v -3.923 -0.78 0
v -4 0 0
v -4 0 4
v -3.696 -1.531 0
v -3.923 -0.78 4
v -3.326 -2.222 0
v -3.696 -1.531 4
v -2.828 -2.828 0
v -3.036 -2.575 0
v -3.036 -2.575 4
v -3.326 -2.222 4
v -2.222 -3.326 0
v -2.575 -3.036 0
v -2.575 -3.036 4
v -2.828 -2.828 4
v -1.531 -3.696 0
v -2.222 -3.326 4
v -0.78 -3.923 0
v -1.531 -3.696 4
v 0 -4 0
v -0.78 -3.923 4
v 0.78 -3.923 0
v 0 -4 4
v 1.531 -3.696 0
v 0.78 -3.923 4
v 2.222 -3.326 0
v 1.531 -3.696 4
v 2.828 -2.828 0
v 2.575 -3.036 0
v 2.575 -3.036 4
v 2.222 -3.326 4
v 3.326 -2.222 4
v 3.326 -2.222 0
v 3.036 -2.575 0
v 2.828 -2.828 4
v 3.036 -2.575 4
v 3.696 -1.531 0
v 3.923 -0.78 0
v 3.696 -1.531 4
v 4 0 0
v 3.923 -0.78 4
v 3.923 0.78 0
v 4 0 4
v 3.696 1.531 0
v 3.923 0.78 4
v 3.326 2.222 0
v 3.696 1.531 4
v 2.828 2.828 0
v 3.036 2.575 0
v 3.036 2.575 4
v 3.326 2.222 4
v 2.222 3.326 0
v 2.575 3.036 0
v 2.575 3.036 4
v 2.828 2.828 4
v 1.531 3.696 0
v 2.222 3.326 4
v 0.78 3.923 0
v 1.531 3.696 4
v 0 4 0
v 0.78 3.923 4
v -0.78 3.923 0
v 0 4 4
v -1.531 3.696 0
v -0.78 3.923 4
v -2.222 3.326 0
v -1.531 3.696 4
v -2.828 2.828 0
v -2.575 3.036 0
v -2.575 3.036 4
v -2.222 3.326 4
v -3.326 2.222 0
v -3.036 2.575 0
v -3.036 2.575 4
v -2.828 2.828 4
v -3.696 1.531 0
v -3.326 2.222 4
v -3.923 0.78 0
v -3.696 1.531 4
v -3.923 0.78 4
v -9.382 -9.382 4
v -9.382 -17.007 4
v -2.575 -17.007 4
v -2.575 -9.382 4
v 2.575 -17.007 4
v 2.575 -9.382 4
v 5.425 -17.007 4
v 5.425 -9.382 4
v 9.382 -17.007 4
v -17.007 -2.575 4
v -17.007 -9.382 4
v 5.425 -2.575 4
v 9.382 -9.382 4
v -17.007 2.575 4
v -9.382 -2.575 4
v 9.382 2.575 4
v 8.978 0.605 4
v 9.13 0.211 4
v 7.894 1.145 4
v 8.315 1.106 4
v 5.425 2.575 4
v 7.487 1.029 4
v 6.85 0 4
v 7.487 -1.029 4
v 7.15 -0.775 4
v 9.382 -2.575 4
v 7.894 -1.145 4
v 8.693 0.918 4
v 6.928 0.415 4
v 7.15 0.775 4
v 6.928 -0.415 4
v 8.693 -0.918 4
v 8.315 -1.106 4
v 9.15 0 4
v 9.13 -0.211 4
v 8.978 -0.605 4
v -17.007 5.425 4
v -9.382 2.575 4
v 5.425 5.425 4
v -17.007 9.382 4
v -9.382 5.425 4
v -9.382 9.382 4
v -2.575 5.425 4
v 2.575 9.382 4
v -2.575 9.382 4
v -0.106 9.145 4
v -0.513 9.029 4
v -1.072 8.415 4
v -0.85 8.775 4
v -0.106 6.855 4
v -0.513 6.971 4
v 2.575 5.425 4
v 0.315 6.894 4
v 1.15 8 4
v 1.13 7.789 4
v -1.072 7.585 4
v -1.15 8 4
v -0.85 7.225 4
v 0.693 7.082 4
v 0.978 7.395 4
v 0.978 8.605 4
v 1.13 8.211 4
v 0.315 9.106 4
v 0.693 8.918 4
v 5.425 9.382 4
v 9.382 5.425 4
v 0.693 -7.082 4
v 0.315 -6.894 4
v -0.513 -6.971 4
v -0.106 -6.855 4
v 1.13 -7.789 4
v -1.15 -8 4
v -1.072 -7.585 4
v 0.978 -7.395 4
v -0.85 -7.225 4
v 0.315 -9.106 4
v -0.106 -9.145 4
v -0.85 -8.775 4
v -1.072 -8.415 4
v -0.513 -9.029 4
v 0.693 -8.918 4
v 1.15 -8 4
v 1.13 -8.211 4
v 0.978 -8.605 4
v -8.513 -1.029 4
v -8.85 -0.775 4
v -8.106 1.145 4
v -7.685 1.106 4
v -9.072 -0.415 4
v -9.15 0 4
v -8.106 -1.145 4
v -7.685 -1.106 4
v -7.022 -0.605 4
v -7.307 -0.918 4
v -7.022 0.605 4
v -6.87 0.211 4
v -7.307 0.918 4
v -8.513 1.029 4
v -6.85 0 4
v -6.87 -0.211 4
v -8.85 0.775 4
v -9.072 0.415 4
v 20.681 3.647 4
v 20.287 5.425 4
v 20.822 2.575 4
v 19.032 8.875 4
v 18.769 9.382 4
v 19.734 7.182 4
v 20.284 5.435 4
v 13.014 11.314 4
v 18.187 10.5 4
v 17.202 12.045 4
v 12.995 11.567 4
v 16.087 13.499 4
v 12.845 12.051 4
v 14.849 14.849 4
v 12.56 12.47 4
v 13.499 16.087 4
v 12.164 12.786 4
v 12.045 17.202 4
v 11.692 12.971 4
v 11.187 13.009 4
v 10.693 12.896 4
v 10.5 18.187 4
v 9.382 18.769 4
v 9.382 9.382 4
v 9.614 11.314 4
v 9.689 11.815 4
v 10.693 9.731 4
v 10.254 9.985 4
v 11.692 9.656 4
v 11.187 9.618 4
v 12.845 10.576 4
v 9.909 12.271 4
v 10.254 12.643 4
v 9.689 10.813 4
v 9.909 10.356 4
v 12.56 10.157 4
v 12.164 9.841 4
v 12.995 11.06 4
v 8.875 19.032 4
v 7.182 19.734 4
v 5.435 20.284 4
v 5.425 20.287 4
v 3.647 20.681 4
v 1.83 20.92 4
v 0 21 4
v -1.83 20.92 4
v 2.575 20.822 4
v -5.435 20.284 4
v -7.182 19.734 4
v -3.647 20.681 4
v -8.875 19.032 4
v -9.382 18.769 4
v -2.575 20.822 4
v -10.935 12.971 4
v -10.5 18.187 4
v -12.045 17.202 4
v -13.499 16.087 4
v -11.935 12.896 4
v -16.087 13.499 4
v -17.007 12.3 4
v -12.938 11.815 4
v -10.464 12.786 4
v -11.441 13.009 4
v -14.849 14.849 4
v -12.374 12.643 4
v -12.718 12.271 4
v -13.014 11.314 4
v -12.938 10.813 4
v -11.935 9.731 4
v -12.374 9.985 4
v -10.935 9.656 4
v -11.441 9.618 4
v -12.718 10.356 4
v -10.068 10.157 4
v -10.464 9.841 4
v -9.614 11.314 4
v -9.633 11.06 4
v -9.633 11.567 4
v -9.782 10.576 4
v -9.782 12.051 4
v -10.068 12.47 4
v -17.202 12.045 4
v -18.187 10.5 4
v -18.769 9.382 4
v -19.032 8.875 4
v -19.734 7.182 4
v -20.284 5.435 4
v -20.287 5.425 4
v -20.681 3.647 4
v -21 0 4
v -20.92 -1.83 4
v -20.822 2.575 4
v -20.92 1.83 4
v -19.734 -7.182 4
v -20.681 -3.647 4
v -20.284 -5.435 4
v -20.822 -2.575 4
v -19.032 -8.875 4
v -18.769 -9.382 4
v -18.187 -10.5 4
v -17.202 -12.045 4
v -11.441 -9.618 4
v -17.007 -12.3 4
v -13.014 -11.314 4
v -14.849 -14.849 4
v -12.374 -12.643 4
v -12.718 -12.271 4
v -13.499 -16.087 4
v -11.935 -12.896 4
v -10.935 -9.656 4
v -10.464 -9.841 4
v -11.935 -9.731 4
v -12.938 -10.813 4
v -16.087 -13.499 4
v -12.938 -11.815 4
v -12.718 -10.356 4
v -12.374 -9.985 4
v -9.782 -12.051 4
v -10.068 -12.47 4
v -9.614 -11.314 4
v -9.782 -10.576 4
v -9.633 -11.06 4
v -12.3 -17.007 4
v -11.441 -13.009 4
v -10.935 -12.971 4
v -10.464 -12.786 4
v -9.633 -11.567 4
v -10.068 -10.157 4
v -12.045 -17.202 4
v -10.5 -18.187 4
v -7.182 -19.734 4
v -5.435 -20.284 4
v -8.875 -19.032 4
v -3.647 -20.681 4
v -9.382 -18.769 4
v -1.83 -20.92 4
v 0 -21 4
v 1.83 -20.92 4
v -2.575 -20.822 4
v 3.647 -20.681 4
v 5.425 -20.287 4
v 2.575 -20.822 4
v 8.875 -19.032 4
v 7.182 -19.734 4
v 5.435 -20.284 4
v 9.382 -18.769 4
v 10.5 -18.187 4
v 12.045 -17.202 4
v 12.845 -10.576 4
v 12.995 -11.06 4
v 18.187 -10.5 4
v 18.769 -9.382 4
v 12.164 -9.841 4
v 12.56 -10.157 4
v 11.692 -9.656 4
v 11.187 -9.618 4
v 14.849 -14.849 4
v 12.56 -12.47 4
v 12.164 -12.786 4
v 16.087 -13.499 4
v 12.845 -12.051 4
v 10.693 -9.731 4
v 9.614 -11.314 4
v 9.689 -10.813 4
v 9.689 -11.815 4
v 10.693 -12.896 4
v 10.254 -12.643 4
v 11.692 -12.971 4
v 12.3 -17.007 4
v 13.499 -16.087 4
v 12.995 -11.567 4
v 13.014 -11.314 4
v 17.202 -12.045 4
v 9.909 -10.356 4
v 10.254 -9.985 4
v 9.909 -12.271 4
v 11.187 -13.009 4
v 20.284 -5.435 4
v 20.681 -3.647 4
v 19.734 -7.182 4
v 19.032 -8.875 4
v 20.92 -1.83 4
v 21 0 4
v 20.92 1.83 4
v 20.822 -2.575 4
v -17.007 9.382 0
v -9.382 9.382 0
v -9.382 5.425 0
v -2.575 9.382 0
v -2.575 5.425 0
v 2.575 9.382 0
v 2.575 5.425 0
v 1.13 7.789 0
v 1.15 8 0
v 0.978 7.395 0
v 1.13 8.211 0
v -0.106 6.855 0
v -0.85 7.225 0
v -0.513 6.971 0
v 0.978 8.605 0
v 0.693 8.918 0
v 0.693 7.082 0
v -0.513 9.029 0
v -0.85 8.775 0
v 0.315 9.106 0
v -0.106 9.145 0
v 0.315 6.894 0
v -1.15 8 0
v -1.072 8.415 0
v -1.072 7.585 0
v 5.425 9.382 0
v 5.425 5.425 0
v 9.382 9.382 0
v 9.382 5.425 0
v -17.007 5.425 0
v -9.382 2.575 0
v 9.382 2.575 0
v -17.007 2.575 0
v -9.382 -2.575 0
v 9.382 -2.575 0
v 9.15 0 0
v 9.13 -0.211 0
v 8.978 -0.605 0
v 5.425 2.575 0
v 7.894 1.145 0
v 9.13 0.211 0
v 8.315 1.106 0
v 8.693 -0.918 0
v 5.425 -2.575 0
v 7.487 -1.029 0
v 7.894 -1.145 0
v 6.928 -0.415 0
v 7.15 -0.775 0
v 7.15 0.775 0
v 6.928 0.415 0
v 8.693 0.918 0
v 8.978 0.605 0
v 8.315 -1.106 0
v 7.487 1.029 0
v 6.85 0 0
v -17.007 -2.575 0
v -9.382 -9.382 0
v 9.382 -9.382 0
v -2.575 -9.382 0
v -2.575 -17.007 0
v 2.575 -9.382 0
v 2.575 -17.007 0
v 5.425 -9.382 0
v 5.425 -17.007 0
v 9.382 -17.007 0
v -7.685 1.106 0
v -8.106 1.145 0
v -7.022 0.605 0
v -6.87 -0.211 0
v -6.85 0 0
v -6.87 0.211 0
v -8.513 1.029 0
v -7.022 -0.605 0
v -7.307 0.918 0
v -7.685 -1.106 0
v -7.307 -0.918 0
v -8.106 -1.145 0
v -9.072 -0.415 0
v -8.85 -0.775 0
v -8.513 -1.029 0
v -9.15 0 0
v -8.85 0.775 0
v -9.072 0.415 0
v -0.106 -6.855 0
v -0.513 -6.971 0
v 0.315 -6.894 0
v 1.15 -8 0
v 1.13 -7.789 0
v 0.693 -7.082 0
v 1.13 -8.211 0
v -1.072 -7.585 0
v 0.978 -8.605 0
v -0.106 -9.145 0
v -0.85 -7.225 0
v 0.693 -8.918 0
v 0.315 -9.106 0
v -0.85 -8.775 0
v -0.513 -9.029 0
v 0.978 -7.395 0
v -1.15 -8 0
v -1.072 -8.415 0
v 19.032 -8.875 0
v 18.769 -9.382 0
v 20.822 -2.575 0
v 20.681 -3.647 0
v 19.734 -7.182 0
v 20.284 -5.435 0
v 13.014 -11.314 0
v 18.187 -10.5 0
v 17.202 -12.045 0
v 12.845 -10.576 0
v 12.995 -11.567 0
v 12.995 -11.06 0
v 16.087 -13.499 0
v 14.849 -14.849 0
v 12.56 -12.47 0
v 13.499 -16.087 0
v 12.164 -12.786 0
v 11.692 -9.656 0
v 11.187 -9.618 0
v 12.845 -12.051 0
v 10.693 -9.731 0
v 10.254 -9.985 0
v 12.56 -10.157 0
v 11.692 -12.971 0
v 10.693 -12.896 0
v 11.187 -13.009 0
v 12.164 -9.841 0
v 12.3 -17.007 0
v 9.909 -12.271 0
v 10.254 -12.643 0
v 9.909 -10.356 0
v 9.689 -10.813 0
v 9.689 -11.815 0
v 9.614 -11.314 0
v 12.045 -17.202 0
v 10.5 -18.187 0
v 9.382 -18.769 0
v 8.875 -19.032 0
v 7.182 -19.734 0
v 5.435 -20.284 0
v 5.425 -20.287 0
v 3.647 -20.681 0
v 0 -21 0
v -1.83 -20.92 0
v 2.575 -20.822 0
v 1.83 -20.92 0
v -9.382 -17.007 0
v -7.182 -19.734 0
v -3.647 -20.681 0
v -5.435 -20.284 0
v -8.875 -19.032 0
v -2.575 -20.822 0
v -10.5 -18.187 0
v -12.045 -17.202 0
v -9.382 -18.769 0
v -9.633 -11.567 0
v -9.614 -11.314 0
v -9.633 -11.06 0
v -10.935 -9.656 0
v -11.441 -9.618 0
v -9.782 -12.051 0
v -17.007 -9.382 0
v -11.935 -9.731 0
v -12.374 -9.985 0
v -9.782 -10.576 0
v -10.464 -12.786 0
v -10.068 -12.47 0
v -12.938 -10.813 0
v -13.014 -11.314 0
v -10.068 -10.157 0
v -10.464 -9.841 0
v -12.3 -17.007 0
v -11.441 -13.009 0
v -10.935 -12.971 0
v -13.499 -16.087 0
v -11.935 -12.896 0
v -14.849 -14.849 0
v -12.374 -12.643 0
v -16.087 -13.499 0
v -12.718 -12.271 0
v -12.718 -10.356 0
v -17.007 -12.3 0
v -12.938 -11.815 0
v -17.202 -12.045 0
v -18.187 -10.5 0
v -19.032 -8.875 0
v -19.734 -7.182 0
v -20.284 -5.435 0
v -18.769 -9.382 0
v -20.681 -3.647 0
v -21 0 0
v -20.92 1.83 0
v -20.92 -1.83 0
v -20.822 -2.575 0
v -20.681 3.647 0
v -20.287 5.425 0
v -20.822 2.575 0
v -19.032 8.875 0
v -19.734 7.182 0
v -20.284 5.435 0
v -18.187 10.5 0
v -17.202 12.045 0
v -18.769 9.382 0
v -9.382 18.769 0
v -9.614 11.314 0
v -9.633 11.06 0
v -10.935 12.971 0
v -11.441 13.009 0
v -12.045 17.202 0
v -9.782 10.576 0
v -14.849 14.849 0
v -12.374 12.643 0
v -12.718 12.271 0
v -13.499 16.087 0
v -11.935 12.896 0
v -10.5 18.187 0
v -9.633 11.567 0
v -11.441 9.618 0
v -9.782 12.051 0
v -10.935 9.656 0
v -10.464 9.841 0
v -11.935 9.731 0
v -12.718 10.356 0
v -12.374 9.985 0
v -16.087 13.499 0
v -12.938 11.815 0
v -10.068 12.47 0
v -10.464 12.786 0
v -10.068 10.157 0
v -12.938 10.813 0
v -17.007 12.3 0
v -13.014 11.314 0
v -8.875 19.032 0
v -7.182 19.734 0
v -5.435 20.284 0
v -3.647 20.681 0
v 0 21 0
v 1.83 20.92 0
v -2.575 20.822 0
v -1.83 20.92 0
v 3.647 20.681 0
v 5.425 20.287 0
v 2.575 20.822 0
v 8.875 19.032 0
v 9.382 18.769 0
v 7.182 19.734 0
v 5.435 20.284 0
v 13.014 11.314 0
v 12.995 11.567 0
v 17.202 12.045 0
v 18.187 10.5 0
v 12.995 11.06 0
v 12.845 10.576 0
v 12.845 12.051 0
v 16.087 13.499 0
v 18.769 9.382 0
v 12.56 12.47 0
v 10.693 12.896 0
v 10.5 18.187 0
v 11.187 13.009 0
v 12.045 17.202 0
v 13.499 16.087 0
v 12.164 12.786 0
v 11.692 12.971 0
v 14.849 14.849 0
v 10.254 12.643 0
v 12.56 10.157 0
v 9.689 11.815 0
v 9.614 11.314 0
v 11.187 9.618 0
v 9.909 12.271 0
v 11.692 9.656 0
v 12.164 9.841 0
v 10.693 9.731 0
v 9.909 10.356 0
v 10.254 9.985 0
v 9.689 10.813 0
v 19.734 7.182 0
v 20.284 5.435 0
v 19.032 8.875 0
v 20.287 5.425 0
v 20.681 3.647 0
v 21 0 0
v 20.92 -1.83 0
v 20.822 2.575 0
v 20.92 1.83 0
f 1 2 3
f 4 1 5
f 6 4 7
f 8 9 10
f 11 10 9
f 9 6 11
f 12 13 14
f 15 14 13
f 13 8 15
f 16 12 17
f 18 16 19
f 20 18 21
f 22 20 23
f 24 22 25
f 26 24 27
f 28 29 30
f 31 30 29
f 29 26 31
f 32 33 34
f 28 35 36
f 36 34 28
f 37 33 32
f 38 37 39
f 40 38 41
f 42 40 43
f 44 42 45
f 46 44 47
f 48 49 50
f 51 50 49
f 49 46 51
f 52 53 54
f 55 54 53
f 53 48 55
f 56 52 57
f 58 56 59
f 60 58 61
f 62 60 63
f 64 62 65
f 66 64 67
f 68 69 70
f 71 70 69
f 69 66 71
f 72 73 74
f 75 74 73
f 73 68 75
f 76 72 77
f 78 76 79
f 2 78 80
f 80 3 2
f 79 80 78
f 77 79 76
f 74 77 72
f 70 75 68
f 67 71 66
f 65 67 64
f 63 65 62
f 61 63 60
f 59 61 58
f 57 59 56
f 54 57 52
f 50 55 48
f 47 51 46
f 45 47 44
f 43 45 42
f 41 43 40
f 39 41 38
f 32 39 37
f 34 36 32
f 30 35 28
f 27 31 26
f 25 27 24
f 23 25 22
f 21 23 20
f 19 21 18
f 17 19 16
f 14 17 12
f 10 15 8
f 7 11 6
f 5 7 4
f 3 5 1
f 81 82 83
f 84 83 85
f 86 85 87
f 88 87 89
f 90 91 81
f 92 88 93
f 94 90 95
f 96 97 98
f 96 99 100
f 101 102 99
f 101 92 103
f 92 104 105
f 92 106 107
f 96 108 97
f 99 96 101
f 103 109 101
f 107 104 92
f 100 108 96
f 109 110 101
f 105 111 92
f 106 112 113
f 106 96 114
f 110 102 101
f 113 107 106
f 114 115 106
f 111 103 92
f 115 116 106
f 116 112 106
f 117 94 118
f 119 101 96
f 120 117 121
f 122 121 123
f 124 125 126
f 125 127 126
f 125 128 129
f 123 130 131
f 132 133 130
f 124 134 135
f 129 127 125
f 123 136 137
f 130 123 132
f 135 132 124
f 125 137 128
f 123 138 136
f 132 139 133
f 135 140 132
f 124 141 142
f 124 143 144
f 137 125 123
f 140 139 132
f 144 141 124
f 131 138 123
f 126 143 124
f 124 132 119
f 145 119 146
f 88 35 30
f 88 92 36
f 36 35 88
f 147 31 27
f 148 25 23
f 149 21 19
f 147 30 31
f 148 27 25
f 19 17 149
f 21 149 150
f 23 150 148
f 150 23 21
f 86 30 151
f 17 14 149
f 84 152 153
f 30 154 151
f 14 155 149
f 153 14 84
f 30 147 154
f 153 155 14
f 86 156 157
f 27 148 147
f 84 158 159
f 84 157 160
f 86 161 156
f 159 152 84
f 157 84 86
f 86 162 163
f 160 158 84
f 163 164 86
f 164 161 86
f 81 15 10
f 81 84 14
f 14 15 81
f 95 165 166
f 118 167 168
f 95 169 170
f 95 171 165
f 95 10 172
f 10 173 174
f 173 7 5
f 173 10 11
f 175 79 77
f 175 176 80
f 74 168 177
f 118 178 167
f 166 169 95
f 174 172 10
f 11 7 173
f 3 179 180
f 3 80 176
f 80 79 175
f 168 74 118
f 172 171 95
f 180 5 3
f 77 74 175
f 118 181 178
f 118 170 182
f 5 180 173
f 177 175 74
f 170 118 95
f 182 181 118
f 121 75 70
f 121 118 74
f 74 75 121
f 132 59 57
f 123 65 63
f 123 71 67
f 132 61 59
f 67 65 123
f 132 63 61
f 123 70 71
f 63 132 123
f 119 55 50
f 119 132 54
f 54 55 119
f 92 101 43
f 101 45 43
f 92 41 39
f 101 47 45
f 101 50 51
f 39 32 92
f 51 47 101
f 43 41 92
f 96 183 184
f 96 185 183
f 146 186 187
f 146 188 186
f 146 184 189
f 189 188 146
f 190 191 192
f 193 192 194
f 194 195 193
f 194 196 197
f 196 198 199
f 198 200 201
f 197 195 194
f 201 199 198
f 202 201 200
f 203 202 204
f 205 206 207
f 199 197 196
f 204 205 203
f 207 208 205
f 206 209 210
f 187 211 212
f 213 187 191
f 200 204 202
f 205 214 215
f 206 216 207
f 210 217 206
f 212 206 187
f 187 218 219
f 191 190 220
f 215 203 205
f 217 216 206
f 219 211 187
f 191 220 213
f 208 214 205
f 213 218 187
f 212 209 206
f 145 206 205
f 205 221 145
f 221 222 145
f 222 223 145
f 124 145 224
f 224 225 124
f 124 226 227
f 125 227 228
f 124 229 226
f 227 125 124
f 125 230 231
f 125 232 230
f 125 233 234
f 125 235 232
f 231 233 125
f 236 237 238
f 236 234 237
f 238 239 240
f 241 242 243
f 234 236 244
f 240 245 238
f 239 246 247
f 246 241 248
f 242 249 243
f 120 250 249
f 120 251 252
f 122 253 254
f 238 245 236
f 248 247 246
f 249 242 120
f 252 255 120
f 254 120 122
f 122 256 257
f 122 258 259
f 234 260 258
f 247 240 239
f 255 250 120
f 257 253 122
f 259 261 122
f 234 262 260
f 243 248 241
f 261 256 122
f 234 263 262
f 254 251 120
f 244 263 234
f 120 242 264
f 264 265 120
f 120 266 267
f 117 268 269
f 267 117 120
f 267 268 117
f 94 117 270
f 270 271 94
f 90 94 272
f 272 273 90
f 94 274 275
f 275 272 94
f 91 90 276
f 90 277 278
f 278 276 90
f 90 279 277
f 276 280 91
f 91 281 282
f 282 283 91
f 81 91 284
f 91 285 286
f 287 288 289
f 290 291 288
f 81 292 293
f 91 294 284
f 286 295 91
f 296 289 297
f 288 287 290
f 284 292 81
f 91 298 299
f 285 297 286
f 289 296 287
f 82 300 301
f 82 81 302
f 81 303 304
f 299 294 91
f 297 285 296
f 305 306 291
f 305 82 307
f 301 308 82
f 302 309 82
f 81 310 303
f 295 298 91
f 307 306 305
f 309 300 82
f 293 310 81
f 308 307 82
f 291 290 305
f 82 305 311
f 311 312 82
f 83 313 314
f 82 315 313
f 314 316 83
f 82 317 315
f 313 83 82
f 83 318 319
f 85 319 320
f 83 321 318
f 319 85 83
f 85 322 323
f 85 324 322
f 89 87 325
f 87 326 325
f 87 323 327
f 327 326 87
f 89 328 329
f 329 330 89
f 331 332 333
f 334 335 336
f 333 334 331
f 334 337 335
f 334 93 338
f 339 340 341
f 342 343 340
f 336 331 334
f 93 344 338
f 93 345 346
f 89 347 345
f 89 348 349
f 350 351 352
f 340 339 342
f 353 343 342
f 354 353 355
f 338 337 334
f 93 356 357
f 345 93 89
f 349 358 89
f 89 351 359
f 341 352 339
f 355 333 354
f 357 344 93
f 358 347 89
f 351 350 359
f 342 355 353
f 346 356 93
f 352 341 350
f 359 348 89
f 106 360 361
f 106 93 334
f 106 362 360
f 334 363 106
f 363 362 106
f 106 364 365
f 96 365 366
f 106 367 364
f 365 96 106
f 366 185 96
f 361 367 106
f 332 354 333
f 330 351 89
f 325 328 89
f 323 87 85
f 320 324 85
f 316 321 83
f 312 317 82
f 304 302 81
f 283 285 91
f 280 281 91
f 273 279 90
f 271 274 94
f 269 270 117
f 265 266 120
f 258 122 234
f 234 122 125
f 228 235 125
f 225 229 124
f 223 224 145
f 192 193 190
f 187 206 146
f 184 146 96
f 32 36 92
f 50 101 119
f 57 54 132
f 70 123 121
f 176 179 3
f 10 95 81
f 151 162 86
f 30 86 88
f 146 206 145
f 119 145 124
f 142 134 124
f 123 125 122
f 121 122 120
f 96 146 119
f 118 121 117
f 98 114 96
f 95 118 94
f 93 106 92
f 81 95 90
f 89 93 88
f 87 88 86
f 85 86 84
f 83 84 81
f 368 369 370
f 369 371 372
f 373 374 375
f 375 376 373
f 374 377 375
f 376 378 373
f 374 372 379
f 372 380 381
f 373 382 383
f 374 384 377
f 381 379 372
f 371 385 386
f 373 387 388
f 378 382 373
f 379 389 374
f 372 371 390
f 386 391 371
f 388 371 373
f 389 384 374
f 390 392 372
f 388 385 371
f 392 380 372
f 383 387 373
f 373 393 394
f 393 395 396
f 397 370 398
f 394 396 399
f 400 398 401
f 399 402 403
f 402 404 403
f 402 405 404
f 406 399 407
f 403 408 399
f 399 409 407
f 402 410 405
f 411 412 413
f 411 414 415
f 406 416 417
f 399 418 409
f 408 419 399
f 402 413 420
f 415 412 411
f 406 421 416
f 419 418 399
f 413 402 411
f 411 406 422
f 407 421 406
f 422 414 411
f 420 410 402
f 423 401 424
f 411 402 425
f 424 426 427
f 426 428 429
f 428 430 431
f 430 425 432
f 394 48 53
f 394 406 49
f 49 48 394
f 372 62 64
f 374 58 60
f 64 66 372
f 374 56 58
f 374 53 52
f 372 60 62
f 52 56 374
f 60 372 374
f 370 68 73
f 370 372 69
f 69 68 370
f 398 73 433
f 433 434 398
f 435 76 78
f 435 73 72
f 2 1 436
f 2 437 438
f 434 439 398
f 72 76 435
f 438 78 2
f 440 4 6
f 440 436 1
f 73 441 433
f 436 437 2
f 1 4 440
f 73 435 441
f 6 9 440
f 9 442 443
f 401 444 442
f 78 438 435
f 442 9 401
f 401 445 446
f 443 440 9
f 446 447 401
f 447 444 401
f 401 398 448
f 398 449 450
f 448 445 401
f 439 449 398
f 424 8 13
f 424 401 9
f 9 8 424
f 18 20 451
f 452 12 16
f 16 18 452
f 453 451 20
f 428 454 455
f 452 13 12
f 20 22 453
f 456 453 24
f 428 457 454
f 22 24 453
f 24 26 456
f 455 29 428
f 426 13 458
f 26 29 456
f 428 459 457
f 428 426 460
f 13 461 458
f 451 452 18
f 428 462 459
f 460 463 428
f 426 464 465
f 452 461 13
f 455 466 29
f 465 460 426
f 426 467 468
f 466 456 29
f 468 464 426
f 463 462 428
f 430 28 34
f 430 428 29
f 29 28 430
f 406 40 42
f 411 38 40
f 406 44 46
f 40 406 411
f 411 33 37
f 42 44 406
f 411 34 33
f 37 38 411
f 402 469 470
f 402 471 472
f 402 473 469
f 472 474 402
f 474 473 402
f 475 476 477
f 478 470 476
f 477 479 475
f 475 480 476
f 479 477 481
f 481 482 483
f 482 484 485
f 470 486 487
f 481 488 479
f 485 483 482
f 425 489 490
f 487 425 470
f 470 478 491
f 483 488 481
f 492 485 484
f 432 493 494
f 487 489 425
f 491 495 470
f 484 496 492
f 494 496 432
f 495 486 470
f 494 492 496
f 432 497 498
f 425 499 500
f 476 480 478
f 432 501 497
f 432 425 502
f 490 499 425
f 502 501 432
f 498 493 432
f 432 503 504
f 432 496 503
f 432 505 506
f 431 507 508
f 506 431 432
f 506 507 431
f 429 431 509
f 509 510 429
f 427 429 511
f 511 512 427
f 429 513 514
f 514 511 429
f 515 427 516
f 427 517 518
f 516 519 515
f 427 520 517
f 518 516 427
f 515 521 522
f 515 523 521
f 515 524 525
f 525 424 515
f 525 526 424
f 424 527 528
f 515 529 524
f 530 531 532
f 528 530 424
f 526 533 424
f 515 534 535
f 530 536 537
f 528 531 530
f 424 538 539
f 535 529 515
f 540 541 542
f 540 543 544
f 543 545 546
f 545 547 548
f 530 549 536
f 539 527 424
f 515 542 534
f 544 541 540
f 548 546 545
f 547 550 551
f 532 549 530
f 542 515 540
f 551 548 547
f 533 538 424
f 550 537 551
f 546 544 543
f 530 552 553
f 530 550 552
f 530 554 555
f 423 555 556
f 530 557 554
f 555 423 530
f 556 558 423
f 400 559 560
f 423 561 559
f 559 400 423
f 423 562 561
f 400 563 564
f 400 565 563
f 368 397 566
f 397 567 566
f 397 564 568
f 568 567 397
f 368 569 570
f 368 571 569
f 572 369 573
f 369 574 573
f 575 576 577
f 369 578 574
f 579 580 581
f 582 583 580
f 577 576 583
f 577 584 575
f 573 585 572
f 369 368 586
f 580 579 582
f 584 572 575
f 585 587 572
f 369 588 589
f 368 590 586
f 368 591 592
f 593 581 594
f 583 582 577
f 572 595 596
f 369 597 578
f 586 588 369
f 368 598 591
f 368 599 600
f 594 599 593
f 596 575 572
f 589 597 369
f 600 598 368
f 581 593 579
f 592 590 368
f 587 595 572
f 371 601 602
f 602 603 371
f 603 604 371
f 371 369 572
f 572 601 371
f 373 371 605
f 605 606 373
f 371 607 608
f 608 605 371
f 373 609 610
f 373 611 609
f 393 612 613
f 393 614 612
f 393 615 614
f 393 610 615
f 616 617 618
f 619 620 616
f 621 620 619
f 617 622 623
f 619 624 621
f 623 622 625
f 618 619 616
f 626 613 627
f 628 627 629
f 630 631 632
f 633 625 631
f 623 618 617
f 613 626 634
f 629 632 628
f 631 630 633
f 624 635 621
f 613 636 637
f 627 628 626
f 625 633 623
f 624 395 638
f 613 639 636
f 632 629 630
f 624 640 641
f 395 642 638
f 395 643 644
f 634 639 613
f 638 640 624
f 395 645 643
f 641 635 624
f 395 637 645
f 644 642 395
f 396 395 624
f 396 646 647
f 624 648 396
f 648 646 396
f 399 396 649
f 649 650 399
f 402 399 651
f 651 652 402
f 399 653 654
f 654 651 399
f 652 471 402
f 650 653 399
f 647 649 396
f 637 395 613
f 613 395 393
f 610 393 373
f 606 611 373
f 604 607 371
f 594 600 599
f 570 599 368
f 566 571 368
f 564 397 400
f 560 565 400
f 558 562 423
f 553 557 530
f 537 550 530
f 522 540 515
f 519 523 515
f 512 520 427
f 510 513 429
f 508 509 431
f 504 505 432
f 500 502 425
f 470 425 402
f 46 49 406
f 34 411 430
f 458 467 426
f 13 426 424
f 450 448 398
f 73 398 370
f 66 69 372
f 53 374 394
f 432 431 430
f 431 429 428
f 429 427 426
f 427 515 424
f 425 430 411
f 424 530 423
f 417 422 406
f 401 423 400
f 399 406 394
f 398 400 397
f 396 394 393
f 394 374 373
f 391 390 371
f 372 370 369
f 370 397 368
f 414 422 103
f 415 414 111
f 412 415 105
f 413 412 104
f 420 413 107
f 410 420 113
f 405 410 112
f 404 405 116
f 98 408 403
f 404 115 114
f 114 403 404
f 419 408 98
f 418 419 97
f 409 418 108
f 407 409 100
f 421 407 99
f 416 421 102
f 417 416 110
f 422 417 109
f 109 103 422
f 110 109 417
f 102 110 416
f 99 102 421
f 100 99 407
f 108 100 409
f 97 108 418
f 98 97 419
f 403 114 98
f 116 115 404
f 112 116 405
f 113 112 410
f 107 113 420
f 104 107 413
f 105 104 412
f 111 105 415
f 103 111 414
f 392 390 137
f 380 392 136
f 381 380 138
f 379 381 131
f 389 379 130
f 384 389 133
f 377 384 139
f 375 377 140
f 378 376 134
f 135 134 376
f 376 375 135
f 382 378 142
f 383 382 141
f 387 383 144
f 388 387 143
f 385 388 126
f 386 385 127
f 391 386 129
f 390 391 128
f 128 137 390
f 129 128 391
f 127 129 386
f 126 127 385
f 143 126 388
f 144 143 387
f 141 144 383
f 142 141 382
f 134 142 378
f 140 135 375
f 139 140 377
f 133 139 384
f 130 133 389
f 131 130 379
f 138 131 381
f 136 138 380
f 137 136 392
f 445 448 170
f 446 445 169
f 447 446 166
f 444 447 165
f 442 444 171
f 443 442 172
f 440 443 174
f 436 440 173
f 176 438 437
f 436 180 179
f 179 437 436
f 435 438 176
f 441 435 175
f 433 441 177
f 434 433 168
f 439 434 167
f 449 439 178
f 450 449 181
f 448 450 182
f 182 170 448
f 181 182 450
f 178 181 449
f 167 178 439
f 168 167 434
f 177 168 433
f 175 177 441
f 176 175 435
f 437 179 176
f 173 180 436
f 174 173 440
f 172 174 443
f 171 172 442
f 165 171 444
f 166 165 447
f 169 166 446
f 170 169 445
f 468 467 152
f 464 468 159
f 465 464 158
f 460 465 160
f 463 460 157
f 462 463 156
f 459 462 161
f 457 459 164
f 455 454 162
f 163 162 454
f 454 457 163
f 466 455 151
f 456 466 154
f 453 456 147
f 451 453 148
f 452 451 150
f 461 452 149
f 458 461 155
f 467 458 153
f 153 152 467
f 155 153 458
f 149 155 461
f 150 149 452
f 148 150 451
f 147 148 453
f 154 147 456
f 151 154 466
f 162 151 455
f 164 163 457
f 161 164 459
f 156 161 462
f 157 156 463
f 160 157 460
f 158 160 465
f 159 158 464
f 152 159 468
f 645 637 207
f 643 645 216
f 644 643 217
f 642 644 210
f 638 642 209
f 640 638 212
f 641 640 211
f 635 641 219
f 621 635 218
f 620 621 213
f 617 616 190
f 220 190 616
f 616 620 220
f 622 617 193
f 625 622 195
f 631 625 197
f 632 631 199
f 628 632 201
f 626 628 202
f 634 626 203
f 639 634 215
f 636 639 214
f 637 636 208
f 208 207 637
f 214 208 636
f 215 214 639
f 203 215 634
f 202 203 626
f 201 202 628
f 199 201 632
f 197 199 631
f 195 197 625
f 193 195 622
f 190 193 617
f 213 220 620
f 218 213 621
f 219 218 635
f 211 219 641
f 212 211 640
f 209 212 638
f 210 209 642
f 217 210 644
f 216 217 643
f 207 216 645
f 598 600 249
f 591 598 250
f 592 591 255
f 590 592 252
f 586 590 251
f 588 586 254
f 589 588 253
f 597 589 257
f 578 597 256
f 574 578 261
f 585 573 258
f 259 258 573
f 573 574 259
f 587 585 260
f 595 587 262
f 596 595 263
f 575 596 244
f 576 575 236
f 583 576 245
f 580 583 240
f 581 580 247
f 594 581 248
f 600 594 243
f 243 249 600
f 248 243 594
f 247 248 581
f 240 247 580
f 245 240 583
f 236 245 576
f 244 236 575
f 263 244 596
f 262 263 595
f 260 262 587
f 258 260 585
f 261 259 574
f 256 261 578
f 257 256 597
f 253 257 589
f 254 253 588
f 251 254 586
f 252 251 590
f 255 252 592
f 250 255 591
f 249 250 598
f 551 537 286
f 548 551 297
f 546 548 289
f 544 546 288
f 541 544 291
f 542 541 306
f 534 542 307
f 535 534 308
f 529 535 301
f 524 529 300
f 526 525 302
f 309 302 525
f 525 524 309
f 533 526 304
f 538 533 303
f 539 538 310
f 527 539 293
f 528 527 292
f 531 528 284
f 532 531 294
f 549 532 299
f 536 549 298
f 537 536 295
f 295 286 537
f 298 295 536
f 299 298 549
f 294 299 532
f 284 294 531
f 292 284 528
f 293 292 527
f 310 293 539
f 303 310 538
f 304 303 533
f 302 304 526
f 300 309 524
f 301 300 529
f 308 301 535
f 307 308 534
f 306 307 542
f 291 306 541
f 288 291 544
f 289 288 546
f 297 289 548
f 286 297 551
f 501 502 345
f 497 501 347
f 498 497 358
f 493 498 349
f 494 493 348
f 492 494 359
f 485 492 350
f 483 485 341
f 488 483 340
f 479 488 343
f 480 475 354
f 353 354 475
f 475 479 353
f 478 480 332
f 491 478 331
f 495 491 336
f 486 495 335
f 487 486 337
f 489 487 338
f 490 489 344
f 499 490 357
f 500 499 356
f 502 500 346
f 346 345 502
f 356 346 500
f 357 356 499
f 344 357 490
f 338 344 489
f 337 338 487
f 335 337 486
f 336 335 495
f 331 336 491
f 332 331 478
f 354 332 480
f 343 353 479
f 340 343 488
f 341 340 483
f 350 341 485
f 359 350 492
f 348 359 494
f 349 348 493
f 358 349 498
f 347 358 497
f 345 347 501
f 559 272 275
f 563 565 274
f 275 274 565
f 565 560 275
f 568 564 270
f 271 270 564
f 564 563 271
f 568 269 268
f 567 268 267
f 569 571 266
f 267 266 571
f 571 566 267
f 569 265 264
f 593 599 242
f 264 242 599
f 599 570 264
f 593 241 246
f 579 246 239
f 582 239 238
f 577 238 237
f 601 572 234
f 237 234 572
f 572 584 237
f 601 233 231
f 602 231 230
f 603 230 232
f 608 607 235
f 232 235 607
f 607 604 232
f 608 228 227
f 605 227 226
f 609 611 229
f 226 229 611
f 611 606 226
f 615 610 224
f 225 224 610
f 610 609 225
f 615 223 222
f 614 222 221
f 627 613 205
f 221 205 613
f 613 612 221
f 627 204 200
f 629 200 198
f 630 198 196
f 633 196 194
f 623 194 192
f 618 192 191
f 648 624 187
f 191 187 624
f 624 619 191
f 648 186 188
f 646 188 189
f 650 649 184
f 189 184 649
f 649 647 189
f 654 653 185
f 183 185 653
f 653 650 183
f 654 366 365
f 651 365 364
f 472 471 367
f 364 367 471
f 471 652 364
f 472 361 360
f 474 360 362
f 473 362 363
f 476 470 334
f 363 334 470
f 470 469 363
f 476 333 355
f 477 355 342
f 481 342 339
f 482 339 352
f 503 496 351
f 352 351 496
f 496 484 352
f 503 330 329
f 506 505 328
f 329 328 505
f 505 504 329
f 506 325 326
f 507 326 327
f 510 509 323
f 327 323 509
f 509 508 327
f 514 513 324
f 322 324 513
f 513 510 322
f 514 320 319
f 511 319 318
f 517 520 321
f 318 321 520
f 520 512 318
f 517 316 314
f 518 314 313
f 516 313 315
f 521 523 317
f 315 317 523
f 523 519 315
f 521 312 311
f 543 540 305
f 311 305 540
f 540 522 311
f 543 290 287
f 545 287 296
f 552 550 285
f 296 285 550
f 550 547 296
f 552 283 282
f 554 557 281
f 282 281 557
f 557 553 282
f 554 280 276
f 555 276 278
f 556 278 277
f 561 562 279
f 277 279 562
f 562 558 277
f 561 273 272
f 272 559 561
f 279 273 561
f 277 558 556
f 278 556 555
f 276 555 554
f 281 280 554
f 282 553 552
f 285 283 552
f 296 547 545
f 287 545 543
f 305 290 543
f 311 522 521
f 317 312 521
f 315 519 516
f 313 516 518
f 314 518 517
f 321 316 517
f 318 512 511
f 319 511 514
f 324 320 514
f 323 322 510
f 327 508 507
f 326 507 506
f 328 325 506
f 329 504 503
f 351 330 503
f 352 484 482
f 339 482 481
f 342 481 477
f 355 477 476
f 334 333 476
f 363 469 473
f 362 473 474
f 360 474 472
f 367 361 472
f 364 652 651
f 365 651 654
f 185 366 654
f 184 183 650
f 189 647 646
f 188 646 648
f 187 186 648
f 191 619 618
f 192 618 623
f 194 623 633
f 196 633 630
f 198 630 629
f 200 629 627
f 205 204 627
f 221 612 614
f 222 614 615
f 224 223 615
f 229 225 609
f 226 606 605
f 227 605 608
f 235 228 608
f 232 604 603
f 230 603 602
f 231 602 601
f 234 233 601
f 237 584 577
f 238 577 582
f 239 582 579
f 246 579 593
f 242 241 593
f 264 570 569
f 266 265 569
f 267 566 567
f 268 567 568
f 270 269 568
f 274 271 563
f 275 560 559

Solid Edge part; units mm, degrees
sketch "Sketch1" plane through (0, 0, 0) normal (0, 0, 1) x (1, 0, 0)
  circle A0 centre (0, 0) radius 21
  circle A1 centre (0, 0) radius 4
  circle A2 centre (8, 0) radius 1.15
  circle A3 centre (0, 8) radius 1.15
  circle A4 centre (-8, 0) radius 1.15
  circle A5 centre (0, -8) radius 1.15
  circle A6 centre (11.3137, 11.3137) radius 1.7
  circle A7 centre (-11.3137, 11.3137) radius 1.7
  circle A8 centre (-11.3137, -11.3137) radius 1.7
  circle A9 centre (11.3137, -11.3137) radius 1.7
extrude "Protrusion1" add sketch "Sketch1" along normal blind 4
